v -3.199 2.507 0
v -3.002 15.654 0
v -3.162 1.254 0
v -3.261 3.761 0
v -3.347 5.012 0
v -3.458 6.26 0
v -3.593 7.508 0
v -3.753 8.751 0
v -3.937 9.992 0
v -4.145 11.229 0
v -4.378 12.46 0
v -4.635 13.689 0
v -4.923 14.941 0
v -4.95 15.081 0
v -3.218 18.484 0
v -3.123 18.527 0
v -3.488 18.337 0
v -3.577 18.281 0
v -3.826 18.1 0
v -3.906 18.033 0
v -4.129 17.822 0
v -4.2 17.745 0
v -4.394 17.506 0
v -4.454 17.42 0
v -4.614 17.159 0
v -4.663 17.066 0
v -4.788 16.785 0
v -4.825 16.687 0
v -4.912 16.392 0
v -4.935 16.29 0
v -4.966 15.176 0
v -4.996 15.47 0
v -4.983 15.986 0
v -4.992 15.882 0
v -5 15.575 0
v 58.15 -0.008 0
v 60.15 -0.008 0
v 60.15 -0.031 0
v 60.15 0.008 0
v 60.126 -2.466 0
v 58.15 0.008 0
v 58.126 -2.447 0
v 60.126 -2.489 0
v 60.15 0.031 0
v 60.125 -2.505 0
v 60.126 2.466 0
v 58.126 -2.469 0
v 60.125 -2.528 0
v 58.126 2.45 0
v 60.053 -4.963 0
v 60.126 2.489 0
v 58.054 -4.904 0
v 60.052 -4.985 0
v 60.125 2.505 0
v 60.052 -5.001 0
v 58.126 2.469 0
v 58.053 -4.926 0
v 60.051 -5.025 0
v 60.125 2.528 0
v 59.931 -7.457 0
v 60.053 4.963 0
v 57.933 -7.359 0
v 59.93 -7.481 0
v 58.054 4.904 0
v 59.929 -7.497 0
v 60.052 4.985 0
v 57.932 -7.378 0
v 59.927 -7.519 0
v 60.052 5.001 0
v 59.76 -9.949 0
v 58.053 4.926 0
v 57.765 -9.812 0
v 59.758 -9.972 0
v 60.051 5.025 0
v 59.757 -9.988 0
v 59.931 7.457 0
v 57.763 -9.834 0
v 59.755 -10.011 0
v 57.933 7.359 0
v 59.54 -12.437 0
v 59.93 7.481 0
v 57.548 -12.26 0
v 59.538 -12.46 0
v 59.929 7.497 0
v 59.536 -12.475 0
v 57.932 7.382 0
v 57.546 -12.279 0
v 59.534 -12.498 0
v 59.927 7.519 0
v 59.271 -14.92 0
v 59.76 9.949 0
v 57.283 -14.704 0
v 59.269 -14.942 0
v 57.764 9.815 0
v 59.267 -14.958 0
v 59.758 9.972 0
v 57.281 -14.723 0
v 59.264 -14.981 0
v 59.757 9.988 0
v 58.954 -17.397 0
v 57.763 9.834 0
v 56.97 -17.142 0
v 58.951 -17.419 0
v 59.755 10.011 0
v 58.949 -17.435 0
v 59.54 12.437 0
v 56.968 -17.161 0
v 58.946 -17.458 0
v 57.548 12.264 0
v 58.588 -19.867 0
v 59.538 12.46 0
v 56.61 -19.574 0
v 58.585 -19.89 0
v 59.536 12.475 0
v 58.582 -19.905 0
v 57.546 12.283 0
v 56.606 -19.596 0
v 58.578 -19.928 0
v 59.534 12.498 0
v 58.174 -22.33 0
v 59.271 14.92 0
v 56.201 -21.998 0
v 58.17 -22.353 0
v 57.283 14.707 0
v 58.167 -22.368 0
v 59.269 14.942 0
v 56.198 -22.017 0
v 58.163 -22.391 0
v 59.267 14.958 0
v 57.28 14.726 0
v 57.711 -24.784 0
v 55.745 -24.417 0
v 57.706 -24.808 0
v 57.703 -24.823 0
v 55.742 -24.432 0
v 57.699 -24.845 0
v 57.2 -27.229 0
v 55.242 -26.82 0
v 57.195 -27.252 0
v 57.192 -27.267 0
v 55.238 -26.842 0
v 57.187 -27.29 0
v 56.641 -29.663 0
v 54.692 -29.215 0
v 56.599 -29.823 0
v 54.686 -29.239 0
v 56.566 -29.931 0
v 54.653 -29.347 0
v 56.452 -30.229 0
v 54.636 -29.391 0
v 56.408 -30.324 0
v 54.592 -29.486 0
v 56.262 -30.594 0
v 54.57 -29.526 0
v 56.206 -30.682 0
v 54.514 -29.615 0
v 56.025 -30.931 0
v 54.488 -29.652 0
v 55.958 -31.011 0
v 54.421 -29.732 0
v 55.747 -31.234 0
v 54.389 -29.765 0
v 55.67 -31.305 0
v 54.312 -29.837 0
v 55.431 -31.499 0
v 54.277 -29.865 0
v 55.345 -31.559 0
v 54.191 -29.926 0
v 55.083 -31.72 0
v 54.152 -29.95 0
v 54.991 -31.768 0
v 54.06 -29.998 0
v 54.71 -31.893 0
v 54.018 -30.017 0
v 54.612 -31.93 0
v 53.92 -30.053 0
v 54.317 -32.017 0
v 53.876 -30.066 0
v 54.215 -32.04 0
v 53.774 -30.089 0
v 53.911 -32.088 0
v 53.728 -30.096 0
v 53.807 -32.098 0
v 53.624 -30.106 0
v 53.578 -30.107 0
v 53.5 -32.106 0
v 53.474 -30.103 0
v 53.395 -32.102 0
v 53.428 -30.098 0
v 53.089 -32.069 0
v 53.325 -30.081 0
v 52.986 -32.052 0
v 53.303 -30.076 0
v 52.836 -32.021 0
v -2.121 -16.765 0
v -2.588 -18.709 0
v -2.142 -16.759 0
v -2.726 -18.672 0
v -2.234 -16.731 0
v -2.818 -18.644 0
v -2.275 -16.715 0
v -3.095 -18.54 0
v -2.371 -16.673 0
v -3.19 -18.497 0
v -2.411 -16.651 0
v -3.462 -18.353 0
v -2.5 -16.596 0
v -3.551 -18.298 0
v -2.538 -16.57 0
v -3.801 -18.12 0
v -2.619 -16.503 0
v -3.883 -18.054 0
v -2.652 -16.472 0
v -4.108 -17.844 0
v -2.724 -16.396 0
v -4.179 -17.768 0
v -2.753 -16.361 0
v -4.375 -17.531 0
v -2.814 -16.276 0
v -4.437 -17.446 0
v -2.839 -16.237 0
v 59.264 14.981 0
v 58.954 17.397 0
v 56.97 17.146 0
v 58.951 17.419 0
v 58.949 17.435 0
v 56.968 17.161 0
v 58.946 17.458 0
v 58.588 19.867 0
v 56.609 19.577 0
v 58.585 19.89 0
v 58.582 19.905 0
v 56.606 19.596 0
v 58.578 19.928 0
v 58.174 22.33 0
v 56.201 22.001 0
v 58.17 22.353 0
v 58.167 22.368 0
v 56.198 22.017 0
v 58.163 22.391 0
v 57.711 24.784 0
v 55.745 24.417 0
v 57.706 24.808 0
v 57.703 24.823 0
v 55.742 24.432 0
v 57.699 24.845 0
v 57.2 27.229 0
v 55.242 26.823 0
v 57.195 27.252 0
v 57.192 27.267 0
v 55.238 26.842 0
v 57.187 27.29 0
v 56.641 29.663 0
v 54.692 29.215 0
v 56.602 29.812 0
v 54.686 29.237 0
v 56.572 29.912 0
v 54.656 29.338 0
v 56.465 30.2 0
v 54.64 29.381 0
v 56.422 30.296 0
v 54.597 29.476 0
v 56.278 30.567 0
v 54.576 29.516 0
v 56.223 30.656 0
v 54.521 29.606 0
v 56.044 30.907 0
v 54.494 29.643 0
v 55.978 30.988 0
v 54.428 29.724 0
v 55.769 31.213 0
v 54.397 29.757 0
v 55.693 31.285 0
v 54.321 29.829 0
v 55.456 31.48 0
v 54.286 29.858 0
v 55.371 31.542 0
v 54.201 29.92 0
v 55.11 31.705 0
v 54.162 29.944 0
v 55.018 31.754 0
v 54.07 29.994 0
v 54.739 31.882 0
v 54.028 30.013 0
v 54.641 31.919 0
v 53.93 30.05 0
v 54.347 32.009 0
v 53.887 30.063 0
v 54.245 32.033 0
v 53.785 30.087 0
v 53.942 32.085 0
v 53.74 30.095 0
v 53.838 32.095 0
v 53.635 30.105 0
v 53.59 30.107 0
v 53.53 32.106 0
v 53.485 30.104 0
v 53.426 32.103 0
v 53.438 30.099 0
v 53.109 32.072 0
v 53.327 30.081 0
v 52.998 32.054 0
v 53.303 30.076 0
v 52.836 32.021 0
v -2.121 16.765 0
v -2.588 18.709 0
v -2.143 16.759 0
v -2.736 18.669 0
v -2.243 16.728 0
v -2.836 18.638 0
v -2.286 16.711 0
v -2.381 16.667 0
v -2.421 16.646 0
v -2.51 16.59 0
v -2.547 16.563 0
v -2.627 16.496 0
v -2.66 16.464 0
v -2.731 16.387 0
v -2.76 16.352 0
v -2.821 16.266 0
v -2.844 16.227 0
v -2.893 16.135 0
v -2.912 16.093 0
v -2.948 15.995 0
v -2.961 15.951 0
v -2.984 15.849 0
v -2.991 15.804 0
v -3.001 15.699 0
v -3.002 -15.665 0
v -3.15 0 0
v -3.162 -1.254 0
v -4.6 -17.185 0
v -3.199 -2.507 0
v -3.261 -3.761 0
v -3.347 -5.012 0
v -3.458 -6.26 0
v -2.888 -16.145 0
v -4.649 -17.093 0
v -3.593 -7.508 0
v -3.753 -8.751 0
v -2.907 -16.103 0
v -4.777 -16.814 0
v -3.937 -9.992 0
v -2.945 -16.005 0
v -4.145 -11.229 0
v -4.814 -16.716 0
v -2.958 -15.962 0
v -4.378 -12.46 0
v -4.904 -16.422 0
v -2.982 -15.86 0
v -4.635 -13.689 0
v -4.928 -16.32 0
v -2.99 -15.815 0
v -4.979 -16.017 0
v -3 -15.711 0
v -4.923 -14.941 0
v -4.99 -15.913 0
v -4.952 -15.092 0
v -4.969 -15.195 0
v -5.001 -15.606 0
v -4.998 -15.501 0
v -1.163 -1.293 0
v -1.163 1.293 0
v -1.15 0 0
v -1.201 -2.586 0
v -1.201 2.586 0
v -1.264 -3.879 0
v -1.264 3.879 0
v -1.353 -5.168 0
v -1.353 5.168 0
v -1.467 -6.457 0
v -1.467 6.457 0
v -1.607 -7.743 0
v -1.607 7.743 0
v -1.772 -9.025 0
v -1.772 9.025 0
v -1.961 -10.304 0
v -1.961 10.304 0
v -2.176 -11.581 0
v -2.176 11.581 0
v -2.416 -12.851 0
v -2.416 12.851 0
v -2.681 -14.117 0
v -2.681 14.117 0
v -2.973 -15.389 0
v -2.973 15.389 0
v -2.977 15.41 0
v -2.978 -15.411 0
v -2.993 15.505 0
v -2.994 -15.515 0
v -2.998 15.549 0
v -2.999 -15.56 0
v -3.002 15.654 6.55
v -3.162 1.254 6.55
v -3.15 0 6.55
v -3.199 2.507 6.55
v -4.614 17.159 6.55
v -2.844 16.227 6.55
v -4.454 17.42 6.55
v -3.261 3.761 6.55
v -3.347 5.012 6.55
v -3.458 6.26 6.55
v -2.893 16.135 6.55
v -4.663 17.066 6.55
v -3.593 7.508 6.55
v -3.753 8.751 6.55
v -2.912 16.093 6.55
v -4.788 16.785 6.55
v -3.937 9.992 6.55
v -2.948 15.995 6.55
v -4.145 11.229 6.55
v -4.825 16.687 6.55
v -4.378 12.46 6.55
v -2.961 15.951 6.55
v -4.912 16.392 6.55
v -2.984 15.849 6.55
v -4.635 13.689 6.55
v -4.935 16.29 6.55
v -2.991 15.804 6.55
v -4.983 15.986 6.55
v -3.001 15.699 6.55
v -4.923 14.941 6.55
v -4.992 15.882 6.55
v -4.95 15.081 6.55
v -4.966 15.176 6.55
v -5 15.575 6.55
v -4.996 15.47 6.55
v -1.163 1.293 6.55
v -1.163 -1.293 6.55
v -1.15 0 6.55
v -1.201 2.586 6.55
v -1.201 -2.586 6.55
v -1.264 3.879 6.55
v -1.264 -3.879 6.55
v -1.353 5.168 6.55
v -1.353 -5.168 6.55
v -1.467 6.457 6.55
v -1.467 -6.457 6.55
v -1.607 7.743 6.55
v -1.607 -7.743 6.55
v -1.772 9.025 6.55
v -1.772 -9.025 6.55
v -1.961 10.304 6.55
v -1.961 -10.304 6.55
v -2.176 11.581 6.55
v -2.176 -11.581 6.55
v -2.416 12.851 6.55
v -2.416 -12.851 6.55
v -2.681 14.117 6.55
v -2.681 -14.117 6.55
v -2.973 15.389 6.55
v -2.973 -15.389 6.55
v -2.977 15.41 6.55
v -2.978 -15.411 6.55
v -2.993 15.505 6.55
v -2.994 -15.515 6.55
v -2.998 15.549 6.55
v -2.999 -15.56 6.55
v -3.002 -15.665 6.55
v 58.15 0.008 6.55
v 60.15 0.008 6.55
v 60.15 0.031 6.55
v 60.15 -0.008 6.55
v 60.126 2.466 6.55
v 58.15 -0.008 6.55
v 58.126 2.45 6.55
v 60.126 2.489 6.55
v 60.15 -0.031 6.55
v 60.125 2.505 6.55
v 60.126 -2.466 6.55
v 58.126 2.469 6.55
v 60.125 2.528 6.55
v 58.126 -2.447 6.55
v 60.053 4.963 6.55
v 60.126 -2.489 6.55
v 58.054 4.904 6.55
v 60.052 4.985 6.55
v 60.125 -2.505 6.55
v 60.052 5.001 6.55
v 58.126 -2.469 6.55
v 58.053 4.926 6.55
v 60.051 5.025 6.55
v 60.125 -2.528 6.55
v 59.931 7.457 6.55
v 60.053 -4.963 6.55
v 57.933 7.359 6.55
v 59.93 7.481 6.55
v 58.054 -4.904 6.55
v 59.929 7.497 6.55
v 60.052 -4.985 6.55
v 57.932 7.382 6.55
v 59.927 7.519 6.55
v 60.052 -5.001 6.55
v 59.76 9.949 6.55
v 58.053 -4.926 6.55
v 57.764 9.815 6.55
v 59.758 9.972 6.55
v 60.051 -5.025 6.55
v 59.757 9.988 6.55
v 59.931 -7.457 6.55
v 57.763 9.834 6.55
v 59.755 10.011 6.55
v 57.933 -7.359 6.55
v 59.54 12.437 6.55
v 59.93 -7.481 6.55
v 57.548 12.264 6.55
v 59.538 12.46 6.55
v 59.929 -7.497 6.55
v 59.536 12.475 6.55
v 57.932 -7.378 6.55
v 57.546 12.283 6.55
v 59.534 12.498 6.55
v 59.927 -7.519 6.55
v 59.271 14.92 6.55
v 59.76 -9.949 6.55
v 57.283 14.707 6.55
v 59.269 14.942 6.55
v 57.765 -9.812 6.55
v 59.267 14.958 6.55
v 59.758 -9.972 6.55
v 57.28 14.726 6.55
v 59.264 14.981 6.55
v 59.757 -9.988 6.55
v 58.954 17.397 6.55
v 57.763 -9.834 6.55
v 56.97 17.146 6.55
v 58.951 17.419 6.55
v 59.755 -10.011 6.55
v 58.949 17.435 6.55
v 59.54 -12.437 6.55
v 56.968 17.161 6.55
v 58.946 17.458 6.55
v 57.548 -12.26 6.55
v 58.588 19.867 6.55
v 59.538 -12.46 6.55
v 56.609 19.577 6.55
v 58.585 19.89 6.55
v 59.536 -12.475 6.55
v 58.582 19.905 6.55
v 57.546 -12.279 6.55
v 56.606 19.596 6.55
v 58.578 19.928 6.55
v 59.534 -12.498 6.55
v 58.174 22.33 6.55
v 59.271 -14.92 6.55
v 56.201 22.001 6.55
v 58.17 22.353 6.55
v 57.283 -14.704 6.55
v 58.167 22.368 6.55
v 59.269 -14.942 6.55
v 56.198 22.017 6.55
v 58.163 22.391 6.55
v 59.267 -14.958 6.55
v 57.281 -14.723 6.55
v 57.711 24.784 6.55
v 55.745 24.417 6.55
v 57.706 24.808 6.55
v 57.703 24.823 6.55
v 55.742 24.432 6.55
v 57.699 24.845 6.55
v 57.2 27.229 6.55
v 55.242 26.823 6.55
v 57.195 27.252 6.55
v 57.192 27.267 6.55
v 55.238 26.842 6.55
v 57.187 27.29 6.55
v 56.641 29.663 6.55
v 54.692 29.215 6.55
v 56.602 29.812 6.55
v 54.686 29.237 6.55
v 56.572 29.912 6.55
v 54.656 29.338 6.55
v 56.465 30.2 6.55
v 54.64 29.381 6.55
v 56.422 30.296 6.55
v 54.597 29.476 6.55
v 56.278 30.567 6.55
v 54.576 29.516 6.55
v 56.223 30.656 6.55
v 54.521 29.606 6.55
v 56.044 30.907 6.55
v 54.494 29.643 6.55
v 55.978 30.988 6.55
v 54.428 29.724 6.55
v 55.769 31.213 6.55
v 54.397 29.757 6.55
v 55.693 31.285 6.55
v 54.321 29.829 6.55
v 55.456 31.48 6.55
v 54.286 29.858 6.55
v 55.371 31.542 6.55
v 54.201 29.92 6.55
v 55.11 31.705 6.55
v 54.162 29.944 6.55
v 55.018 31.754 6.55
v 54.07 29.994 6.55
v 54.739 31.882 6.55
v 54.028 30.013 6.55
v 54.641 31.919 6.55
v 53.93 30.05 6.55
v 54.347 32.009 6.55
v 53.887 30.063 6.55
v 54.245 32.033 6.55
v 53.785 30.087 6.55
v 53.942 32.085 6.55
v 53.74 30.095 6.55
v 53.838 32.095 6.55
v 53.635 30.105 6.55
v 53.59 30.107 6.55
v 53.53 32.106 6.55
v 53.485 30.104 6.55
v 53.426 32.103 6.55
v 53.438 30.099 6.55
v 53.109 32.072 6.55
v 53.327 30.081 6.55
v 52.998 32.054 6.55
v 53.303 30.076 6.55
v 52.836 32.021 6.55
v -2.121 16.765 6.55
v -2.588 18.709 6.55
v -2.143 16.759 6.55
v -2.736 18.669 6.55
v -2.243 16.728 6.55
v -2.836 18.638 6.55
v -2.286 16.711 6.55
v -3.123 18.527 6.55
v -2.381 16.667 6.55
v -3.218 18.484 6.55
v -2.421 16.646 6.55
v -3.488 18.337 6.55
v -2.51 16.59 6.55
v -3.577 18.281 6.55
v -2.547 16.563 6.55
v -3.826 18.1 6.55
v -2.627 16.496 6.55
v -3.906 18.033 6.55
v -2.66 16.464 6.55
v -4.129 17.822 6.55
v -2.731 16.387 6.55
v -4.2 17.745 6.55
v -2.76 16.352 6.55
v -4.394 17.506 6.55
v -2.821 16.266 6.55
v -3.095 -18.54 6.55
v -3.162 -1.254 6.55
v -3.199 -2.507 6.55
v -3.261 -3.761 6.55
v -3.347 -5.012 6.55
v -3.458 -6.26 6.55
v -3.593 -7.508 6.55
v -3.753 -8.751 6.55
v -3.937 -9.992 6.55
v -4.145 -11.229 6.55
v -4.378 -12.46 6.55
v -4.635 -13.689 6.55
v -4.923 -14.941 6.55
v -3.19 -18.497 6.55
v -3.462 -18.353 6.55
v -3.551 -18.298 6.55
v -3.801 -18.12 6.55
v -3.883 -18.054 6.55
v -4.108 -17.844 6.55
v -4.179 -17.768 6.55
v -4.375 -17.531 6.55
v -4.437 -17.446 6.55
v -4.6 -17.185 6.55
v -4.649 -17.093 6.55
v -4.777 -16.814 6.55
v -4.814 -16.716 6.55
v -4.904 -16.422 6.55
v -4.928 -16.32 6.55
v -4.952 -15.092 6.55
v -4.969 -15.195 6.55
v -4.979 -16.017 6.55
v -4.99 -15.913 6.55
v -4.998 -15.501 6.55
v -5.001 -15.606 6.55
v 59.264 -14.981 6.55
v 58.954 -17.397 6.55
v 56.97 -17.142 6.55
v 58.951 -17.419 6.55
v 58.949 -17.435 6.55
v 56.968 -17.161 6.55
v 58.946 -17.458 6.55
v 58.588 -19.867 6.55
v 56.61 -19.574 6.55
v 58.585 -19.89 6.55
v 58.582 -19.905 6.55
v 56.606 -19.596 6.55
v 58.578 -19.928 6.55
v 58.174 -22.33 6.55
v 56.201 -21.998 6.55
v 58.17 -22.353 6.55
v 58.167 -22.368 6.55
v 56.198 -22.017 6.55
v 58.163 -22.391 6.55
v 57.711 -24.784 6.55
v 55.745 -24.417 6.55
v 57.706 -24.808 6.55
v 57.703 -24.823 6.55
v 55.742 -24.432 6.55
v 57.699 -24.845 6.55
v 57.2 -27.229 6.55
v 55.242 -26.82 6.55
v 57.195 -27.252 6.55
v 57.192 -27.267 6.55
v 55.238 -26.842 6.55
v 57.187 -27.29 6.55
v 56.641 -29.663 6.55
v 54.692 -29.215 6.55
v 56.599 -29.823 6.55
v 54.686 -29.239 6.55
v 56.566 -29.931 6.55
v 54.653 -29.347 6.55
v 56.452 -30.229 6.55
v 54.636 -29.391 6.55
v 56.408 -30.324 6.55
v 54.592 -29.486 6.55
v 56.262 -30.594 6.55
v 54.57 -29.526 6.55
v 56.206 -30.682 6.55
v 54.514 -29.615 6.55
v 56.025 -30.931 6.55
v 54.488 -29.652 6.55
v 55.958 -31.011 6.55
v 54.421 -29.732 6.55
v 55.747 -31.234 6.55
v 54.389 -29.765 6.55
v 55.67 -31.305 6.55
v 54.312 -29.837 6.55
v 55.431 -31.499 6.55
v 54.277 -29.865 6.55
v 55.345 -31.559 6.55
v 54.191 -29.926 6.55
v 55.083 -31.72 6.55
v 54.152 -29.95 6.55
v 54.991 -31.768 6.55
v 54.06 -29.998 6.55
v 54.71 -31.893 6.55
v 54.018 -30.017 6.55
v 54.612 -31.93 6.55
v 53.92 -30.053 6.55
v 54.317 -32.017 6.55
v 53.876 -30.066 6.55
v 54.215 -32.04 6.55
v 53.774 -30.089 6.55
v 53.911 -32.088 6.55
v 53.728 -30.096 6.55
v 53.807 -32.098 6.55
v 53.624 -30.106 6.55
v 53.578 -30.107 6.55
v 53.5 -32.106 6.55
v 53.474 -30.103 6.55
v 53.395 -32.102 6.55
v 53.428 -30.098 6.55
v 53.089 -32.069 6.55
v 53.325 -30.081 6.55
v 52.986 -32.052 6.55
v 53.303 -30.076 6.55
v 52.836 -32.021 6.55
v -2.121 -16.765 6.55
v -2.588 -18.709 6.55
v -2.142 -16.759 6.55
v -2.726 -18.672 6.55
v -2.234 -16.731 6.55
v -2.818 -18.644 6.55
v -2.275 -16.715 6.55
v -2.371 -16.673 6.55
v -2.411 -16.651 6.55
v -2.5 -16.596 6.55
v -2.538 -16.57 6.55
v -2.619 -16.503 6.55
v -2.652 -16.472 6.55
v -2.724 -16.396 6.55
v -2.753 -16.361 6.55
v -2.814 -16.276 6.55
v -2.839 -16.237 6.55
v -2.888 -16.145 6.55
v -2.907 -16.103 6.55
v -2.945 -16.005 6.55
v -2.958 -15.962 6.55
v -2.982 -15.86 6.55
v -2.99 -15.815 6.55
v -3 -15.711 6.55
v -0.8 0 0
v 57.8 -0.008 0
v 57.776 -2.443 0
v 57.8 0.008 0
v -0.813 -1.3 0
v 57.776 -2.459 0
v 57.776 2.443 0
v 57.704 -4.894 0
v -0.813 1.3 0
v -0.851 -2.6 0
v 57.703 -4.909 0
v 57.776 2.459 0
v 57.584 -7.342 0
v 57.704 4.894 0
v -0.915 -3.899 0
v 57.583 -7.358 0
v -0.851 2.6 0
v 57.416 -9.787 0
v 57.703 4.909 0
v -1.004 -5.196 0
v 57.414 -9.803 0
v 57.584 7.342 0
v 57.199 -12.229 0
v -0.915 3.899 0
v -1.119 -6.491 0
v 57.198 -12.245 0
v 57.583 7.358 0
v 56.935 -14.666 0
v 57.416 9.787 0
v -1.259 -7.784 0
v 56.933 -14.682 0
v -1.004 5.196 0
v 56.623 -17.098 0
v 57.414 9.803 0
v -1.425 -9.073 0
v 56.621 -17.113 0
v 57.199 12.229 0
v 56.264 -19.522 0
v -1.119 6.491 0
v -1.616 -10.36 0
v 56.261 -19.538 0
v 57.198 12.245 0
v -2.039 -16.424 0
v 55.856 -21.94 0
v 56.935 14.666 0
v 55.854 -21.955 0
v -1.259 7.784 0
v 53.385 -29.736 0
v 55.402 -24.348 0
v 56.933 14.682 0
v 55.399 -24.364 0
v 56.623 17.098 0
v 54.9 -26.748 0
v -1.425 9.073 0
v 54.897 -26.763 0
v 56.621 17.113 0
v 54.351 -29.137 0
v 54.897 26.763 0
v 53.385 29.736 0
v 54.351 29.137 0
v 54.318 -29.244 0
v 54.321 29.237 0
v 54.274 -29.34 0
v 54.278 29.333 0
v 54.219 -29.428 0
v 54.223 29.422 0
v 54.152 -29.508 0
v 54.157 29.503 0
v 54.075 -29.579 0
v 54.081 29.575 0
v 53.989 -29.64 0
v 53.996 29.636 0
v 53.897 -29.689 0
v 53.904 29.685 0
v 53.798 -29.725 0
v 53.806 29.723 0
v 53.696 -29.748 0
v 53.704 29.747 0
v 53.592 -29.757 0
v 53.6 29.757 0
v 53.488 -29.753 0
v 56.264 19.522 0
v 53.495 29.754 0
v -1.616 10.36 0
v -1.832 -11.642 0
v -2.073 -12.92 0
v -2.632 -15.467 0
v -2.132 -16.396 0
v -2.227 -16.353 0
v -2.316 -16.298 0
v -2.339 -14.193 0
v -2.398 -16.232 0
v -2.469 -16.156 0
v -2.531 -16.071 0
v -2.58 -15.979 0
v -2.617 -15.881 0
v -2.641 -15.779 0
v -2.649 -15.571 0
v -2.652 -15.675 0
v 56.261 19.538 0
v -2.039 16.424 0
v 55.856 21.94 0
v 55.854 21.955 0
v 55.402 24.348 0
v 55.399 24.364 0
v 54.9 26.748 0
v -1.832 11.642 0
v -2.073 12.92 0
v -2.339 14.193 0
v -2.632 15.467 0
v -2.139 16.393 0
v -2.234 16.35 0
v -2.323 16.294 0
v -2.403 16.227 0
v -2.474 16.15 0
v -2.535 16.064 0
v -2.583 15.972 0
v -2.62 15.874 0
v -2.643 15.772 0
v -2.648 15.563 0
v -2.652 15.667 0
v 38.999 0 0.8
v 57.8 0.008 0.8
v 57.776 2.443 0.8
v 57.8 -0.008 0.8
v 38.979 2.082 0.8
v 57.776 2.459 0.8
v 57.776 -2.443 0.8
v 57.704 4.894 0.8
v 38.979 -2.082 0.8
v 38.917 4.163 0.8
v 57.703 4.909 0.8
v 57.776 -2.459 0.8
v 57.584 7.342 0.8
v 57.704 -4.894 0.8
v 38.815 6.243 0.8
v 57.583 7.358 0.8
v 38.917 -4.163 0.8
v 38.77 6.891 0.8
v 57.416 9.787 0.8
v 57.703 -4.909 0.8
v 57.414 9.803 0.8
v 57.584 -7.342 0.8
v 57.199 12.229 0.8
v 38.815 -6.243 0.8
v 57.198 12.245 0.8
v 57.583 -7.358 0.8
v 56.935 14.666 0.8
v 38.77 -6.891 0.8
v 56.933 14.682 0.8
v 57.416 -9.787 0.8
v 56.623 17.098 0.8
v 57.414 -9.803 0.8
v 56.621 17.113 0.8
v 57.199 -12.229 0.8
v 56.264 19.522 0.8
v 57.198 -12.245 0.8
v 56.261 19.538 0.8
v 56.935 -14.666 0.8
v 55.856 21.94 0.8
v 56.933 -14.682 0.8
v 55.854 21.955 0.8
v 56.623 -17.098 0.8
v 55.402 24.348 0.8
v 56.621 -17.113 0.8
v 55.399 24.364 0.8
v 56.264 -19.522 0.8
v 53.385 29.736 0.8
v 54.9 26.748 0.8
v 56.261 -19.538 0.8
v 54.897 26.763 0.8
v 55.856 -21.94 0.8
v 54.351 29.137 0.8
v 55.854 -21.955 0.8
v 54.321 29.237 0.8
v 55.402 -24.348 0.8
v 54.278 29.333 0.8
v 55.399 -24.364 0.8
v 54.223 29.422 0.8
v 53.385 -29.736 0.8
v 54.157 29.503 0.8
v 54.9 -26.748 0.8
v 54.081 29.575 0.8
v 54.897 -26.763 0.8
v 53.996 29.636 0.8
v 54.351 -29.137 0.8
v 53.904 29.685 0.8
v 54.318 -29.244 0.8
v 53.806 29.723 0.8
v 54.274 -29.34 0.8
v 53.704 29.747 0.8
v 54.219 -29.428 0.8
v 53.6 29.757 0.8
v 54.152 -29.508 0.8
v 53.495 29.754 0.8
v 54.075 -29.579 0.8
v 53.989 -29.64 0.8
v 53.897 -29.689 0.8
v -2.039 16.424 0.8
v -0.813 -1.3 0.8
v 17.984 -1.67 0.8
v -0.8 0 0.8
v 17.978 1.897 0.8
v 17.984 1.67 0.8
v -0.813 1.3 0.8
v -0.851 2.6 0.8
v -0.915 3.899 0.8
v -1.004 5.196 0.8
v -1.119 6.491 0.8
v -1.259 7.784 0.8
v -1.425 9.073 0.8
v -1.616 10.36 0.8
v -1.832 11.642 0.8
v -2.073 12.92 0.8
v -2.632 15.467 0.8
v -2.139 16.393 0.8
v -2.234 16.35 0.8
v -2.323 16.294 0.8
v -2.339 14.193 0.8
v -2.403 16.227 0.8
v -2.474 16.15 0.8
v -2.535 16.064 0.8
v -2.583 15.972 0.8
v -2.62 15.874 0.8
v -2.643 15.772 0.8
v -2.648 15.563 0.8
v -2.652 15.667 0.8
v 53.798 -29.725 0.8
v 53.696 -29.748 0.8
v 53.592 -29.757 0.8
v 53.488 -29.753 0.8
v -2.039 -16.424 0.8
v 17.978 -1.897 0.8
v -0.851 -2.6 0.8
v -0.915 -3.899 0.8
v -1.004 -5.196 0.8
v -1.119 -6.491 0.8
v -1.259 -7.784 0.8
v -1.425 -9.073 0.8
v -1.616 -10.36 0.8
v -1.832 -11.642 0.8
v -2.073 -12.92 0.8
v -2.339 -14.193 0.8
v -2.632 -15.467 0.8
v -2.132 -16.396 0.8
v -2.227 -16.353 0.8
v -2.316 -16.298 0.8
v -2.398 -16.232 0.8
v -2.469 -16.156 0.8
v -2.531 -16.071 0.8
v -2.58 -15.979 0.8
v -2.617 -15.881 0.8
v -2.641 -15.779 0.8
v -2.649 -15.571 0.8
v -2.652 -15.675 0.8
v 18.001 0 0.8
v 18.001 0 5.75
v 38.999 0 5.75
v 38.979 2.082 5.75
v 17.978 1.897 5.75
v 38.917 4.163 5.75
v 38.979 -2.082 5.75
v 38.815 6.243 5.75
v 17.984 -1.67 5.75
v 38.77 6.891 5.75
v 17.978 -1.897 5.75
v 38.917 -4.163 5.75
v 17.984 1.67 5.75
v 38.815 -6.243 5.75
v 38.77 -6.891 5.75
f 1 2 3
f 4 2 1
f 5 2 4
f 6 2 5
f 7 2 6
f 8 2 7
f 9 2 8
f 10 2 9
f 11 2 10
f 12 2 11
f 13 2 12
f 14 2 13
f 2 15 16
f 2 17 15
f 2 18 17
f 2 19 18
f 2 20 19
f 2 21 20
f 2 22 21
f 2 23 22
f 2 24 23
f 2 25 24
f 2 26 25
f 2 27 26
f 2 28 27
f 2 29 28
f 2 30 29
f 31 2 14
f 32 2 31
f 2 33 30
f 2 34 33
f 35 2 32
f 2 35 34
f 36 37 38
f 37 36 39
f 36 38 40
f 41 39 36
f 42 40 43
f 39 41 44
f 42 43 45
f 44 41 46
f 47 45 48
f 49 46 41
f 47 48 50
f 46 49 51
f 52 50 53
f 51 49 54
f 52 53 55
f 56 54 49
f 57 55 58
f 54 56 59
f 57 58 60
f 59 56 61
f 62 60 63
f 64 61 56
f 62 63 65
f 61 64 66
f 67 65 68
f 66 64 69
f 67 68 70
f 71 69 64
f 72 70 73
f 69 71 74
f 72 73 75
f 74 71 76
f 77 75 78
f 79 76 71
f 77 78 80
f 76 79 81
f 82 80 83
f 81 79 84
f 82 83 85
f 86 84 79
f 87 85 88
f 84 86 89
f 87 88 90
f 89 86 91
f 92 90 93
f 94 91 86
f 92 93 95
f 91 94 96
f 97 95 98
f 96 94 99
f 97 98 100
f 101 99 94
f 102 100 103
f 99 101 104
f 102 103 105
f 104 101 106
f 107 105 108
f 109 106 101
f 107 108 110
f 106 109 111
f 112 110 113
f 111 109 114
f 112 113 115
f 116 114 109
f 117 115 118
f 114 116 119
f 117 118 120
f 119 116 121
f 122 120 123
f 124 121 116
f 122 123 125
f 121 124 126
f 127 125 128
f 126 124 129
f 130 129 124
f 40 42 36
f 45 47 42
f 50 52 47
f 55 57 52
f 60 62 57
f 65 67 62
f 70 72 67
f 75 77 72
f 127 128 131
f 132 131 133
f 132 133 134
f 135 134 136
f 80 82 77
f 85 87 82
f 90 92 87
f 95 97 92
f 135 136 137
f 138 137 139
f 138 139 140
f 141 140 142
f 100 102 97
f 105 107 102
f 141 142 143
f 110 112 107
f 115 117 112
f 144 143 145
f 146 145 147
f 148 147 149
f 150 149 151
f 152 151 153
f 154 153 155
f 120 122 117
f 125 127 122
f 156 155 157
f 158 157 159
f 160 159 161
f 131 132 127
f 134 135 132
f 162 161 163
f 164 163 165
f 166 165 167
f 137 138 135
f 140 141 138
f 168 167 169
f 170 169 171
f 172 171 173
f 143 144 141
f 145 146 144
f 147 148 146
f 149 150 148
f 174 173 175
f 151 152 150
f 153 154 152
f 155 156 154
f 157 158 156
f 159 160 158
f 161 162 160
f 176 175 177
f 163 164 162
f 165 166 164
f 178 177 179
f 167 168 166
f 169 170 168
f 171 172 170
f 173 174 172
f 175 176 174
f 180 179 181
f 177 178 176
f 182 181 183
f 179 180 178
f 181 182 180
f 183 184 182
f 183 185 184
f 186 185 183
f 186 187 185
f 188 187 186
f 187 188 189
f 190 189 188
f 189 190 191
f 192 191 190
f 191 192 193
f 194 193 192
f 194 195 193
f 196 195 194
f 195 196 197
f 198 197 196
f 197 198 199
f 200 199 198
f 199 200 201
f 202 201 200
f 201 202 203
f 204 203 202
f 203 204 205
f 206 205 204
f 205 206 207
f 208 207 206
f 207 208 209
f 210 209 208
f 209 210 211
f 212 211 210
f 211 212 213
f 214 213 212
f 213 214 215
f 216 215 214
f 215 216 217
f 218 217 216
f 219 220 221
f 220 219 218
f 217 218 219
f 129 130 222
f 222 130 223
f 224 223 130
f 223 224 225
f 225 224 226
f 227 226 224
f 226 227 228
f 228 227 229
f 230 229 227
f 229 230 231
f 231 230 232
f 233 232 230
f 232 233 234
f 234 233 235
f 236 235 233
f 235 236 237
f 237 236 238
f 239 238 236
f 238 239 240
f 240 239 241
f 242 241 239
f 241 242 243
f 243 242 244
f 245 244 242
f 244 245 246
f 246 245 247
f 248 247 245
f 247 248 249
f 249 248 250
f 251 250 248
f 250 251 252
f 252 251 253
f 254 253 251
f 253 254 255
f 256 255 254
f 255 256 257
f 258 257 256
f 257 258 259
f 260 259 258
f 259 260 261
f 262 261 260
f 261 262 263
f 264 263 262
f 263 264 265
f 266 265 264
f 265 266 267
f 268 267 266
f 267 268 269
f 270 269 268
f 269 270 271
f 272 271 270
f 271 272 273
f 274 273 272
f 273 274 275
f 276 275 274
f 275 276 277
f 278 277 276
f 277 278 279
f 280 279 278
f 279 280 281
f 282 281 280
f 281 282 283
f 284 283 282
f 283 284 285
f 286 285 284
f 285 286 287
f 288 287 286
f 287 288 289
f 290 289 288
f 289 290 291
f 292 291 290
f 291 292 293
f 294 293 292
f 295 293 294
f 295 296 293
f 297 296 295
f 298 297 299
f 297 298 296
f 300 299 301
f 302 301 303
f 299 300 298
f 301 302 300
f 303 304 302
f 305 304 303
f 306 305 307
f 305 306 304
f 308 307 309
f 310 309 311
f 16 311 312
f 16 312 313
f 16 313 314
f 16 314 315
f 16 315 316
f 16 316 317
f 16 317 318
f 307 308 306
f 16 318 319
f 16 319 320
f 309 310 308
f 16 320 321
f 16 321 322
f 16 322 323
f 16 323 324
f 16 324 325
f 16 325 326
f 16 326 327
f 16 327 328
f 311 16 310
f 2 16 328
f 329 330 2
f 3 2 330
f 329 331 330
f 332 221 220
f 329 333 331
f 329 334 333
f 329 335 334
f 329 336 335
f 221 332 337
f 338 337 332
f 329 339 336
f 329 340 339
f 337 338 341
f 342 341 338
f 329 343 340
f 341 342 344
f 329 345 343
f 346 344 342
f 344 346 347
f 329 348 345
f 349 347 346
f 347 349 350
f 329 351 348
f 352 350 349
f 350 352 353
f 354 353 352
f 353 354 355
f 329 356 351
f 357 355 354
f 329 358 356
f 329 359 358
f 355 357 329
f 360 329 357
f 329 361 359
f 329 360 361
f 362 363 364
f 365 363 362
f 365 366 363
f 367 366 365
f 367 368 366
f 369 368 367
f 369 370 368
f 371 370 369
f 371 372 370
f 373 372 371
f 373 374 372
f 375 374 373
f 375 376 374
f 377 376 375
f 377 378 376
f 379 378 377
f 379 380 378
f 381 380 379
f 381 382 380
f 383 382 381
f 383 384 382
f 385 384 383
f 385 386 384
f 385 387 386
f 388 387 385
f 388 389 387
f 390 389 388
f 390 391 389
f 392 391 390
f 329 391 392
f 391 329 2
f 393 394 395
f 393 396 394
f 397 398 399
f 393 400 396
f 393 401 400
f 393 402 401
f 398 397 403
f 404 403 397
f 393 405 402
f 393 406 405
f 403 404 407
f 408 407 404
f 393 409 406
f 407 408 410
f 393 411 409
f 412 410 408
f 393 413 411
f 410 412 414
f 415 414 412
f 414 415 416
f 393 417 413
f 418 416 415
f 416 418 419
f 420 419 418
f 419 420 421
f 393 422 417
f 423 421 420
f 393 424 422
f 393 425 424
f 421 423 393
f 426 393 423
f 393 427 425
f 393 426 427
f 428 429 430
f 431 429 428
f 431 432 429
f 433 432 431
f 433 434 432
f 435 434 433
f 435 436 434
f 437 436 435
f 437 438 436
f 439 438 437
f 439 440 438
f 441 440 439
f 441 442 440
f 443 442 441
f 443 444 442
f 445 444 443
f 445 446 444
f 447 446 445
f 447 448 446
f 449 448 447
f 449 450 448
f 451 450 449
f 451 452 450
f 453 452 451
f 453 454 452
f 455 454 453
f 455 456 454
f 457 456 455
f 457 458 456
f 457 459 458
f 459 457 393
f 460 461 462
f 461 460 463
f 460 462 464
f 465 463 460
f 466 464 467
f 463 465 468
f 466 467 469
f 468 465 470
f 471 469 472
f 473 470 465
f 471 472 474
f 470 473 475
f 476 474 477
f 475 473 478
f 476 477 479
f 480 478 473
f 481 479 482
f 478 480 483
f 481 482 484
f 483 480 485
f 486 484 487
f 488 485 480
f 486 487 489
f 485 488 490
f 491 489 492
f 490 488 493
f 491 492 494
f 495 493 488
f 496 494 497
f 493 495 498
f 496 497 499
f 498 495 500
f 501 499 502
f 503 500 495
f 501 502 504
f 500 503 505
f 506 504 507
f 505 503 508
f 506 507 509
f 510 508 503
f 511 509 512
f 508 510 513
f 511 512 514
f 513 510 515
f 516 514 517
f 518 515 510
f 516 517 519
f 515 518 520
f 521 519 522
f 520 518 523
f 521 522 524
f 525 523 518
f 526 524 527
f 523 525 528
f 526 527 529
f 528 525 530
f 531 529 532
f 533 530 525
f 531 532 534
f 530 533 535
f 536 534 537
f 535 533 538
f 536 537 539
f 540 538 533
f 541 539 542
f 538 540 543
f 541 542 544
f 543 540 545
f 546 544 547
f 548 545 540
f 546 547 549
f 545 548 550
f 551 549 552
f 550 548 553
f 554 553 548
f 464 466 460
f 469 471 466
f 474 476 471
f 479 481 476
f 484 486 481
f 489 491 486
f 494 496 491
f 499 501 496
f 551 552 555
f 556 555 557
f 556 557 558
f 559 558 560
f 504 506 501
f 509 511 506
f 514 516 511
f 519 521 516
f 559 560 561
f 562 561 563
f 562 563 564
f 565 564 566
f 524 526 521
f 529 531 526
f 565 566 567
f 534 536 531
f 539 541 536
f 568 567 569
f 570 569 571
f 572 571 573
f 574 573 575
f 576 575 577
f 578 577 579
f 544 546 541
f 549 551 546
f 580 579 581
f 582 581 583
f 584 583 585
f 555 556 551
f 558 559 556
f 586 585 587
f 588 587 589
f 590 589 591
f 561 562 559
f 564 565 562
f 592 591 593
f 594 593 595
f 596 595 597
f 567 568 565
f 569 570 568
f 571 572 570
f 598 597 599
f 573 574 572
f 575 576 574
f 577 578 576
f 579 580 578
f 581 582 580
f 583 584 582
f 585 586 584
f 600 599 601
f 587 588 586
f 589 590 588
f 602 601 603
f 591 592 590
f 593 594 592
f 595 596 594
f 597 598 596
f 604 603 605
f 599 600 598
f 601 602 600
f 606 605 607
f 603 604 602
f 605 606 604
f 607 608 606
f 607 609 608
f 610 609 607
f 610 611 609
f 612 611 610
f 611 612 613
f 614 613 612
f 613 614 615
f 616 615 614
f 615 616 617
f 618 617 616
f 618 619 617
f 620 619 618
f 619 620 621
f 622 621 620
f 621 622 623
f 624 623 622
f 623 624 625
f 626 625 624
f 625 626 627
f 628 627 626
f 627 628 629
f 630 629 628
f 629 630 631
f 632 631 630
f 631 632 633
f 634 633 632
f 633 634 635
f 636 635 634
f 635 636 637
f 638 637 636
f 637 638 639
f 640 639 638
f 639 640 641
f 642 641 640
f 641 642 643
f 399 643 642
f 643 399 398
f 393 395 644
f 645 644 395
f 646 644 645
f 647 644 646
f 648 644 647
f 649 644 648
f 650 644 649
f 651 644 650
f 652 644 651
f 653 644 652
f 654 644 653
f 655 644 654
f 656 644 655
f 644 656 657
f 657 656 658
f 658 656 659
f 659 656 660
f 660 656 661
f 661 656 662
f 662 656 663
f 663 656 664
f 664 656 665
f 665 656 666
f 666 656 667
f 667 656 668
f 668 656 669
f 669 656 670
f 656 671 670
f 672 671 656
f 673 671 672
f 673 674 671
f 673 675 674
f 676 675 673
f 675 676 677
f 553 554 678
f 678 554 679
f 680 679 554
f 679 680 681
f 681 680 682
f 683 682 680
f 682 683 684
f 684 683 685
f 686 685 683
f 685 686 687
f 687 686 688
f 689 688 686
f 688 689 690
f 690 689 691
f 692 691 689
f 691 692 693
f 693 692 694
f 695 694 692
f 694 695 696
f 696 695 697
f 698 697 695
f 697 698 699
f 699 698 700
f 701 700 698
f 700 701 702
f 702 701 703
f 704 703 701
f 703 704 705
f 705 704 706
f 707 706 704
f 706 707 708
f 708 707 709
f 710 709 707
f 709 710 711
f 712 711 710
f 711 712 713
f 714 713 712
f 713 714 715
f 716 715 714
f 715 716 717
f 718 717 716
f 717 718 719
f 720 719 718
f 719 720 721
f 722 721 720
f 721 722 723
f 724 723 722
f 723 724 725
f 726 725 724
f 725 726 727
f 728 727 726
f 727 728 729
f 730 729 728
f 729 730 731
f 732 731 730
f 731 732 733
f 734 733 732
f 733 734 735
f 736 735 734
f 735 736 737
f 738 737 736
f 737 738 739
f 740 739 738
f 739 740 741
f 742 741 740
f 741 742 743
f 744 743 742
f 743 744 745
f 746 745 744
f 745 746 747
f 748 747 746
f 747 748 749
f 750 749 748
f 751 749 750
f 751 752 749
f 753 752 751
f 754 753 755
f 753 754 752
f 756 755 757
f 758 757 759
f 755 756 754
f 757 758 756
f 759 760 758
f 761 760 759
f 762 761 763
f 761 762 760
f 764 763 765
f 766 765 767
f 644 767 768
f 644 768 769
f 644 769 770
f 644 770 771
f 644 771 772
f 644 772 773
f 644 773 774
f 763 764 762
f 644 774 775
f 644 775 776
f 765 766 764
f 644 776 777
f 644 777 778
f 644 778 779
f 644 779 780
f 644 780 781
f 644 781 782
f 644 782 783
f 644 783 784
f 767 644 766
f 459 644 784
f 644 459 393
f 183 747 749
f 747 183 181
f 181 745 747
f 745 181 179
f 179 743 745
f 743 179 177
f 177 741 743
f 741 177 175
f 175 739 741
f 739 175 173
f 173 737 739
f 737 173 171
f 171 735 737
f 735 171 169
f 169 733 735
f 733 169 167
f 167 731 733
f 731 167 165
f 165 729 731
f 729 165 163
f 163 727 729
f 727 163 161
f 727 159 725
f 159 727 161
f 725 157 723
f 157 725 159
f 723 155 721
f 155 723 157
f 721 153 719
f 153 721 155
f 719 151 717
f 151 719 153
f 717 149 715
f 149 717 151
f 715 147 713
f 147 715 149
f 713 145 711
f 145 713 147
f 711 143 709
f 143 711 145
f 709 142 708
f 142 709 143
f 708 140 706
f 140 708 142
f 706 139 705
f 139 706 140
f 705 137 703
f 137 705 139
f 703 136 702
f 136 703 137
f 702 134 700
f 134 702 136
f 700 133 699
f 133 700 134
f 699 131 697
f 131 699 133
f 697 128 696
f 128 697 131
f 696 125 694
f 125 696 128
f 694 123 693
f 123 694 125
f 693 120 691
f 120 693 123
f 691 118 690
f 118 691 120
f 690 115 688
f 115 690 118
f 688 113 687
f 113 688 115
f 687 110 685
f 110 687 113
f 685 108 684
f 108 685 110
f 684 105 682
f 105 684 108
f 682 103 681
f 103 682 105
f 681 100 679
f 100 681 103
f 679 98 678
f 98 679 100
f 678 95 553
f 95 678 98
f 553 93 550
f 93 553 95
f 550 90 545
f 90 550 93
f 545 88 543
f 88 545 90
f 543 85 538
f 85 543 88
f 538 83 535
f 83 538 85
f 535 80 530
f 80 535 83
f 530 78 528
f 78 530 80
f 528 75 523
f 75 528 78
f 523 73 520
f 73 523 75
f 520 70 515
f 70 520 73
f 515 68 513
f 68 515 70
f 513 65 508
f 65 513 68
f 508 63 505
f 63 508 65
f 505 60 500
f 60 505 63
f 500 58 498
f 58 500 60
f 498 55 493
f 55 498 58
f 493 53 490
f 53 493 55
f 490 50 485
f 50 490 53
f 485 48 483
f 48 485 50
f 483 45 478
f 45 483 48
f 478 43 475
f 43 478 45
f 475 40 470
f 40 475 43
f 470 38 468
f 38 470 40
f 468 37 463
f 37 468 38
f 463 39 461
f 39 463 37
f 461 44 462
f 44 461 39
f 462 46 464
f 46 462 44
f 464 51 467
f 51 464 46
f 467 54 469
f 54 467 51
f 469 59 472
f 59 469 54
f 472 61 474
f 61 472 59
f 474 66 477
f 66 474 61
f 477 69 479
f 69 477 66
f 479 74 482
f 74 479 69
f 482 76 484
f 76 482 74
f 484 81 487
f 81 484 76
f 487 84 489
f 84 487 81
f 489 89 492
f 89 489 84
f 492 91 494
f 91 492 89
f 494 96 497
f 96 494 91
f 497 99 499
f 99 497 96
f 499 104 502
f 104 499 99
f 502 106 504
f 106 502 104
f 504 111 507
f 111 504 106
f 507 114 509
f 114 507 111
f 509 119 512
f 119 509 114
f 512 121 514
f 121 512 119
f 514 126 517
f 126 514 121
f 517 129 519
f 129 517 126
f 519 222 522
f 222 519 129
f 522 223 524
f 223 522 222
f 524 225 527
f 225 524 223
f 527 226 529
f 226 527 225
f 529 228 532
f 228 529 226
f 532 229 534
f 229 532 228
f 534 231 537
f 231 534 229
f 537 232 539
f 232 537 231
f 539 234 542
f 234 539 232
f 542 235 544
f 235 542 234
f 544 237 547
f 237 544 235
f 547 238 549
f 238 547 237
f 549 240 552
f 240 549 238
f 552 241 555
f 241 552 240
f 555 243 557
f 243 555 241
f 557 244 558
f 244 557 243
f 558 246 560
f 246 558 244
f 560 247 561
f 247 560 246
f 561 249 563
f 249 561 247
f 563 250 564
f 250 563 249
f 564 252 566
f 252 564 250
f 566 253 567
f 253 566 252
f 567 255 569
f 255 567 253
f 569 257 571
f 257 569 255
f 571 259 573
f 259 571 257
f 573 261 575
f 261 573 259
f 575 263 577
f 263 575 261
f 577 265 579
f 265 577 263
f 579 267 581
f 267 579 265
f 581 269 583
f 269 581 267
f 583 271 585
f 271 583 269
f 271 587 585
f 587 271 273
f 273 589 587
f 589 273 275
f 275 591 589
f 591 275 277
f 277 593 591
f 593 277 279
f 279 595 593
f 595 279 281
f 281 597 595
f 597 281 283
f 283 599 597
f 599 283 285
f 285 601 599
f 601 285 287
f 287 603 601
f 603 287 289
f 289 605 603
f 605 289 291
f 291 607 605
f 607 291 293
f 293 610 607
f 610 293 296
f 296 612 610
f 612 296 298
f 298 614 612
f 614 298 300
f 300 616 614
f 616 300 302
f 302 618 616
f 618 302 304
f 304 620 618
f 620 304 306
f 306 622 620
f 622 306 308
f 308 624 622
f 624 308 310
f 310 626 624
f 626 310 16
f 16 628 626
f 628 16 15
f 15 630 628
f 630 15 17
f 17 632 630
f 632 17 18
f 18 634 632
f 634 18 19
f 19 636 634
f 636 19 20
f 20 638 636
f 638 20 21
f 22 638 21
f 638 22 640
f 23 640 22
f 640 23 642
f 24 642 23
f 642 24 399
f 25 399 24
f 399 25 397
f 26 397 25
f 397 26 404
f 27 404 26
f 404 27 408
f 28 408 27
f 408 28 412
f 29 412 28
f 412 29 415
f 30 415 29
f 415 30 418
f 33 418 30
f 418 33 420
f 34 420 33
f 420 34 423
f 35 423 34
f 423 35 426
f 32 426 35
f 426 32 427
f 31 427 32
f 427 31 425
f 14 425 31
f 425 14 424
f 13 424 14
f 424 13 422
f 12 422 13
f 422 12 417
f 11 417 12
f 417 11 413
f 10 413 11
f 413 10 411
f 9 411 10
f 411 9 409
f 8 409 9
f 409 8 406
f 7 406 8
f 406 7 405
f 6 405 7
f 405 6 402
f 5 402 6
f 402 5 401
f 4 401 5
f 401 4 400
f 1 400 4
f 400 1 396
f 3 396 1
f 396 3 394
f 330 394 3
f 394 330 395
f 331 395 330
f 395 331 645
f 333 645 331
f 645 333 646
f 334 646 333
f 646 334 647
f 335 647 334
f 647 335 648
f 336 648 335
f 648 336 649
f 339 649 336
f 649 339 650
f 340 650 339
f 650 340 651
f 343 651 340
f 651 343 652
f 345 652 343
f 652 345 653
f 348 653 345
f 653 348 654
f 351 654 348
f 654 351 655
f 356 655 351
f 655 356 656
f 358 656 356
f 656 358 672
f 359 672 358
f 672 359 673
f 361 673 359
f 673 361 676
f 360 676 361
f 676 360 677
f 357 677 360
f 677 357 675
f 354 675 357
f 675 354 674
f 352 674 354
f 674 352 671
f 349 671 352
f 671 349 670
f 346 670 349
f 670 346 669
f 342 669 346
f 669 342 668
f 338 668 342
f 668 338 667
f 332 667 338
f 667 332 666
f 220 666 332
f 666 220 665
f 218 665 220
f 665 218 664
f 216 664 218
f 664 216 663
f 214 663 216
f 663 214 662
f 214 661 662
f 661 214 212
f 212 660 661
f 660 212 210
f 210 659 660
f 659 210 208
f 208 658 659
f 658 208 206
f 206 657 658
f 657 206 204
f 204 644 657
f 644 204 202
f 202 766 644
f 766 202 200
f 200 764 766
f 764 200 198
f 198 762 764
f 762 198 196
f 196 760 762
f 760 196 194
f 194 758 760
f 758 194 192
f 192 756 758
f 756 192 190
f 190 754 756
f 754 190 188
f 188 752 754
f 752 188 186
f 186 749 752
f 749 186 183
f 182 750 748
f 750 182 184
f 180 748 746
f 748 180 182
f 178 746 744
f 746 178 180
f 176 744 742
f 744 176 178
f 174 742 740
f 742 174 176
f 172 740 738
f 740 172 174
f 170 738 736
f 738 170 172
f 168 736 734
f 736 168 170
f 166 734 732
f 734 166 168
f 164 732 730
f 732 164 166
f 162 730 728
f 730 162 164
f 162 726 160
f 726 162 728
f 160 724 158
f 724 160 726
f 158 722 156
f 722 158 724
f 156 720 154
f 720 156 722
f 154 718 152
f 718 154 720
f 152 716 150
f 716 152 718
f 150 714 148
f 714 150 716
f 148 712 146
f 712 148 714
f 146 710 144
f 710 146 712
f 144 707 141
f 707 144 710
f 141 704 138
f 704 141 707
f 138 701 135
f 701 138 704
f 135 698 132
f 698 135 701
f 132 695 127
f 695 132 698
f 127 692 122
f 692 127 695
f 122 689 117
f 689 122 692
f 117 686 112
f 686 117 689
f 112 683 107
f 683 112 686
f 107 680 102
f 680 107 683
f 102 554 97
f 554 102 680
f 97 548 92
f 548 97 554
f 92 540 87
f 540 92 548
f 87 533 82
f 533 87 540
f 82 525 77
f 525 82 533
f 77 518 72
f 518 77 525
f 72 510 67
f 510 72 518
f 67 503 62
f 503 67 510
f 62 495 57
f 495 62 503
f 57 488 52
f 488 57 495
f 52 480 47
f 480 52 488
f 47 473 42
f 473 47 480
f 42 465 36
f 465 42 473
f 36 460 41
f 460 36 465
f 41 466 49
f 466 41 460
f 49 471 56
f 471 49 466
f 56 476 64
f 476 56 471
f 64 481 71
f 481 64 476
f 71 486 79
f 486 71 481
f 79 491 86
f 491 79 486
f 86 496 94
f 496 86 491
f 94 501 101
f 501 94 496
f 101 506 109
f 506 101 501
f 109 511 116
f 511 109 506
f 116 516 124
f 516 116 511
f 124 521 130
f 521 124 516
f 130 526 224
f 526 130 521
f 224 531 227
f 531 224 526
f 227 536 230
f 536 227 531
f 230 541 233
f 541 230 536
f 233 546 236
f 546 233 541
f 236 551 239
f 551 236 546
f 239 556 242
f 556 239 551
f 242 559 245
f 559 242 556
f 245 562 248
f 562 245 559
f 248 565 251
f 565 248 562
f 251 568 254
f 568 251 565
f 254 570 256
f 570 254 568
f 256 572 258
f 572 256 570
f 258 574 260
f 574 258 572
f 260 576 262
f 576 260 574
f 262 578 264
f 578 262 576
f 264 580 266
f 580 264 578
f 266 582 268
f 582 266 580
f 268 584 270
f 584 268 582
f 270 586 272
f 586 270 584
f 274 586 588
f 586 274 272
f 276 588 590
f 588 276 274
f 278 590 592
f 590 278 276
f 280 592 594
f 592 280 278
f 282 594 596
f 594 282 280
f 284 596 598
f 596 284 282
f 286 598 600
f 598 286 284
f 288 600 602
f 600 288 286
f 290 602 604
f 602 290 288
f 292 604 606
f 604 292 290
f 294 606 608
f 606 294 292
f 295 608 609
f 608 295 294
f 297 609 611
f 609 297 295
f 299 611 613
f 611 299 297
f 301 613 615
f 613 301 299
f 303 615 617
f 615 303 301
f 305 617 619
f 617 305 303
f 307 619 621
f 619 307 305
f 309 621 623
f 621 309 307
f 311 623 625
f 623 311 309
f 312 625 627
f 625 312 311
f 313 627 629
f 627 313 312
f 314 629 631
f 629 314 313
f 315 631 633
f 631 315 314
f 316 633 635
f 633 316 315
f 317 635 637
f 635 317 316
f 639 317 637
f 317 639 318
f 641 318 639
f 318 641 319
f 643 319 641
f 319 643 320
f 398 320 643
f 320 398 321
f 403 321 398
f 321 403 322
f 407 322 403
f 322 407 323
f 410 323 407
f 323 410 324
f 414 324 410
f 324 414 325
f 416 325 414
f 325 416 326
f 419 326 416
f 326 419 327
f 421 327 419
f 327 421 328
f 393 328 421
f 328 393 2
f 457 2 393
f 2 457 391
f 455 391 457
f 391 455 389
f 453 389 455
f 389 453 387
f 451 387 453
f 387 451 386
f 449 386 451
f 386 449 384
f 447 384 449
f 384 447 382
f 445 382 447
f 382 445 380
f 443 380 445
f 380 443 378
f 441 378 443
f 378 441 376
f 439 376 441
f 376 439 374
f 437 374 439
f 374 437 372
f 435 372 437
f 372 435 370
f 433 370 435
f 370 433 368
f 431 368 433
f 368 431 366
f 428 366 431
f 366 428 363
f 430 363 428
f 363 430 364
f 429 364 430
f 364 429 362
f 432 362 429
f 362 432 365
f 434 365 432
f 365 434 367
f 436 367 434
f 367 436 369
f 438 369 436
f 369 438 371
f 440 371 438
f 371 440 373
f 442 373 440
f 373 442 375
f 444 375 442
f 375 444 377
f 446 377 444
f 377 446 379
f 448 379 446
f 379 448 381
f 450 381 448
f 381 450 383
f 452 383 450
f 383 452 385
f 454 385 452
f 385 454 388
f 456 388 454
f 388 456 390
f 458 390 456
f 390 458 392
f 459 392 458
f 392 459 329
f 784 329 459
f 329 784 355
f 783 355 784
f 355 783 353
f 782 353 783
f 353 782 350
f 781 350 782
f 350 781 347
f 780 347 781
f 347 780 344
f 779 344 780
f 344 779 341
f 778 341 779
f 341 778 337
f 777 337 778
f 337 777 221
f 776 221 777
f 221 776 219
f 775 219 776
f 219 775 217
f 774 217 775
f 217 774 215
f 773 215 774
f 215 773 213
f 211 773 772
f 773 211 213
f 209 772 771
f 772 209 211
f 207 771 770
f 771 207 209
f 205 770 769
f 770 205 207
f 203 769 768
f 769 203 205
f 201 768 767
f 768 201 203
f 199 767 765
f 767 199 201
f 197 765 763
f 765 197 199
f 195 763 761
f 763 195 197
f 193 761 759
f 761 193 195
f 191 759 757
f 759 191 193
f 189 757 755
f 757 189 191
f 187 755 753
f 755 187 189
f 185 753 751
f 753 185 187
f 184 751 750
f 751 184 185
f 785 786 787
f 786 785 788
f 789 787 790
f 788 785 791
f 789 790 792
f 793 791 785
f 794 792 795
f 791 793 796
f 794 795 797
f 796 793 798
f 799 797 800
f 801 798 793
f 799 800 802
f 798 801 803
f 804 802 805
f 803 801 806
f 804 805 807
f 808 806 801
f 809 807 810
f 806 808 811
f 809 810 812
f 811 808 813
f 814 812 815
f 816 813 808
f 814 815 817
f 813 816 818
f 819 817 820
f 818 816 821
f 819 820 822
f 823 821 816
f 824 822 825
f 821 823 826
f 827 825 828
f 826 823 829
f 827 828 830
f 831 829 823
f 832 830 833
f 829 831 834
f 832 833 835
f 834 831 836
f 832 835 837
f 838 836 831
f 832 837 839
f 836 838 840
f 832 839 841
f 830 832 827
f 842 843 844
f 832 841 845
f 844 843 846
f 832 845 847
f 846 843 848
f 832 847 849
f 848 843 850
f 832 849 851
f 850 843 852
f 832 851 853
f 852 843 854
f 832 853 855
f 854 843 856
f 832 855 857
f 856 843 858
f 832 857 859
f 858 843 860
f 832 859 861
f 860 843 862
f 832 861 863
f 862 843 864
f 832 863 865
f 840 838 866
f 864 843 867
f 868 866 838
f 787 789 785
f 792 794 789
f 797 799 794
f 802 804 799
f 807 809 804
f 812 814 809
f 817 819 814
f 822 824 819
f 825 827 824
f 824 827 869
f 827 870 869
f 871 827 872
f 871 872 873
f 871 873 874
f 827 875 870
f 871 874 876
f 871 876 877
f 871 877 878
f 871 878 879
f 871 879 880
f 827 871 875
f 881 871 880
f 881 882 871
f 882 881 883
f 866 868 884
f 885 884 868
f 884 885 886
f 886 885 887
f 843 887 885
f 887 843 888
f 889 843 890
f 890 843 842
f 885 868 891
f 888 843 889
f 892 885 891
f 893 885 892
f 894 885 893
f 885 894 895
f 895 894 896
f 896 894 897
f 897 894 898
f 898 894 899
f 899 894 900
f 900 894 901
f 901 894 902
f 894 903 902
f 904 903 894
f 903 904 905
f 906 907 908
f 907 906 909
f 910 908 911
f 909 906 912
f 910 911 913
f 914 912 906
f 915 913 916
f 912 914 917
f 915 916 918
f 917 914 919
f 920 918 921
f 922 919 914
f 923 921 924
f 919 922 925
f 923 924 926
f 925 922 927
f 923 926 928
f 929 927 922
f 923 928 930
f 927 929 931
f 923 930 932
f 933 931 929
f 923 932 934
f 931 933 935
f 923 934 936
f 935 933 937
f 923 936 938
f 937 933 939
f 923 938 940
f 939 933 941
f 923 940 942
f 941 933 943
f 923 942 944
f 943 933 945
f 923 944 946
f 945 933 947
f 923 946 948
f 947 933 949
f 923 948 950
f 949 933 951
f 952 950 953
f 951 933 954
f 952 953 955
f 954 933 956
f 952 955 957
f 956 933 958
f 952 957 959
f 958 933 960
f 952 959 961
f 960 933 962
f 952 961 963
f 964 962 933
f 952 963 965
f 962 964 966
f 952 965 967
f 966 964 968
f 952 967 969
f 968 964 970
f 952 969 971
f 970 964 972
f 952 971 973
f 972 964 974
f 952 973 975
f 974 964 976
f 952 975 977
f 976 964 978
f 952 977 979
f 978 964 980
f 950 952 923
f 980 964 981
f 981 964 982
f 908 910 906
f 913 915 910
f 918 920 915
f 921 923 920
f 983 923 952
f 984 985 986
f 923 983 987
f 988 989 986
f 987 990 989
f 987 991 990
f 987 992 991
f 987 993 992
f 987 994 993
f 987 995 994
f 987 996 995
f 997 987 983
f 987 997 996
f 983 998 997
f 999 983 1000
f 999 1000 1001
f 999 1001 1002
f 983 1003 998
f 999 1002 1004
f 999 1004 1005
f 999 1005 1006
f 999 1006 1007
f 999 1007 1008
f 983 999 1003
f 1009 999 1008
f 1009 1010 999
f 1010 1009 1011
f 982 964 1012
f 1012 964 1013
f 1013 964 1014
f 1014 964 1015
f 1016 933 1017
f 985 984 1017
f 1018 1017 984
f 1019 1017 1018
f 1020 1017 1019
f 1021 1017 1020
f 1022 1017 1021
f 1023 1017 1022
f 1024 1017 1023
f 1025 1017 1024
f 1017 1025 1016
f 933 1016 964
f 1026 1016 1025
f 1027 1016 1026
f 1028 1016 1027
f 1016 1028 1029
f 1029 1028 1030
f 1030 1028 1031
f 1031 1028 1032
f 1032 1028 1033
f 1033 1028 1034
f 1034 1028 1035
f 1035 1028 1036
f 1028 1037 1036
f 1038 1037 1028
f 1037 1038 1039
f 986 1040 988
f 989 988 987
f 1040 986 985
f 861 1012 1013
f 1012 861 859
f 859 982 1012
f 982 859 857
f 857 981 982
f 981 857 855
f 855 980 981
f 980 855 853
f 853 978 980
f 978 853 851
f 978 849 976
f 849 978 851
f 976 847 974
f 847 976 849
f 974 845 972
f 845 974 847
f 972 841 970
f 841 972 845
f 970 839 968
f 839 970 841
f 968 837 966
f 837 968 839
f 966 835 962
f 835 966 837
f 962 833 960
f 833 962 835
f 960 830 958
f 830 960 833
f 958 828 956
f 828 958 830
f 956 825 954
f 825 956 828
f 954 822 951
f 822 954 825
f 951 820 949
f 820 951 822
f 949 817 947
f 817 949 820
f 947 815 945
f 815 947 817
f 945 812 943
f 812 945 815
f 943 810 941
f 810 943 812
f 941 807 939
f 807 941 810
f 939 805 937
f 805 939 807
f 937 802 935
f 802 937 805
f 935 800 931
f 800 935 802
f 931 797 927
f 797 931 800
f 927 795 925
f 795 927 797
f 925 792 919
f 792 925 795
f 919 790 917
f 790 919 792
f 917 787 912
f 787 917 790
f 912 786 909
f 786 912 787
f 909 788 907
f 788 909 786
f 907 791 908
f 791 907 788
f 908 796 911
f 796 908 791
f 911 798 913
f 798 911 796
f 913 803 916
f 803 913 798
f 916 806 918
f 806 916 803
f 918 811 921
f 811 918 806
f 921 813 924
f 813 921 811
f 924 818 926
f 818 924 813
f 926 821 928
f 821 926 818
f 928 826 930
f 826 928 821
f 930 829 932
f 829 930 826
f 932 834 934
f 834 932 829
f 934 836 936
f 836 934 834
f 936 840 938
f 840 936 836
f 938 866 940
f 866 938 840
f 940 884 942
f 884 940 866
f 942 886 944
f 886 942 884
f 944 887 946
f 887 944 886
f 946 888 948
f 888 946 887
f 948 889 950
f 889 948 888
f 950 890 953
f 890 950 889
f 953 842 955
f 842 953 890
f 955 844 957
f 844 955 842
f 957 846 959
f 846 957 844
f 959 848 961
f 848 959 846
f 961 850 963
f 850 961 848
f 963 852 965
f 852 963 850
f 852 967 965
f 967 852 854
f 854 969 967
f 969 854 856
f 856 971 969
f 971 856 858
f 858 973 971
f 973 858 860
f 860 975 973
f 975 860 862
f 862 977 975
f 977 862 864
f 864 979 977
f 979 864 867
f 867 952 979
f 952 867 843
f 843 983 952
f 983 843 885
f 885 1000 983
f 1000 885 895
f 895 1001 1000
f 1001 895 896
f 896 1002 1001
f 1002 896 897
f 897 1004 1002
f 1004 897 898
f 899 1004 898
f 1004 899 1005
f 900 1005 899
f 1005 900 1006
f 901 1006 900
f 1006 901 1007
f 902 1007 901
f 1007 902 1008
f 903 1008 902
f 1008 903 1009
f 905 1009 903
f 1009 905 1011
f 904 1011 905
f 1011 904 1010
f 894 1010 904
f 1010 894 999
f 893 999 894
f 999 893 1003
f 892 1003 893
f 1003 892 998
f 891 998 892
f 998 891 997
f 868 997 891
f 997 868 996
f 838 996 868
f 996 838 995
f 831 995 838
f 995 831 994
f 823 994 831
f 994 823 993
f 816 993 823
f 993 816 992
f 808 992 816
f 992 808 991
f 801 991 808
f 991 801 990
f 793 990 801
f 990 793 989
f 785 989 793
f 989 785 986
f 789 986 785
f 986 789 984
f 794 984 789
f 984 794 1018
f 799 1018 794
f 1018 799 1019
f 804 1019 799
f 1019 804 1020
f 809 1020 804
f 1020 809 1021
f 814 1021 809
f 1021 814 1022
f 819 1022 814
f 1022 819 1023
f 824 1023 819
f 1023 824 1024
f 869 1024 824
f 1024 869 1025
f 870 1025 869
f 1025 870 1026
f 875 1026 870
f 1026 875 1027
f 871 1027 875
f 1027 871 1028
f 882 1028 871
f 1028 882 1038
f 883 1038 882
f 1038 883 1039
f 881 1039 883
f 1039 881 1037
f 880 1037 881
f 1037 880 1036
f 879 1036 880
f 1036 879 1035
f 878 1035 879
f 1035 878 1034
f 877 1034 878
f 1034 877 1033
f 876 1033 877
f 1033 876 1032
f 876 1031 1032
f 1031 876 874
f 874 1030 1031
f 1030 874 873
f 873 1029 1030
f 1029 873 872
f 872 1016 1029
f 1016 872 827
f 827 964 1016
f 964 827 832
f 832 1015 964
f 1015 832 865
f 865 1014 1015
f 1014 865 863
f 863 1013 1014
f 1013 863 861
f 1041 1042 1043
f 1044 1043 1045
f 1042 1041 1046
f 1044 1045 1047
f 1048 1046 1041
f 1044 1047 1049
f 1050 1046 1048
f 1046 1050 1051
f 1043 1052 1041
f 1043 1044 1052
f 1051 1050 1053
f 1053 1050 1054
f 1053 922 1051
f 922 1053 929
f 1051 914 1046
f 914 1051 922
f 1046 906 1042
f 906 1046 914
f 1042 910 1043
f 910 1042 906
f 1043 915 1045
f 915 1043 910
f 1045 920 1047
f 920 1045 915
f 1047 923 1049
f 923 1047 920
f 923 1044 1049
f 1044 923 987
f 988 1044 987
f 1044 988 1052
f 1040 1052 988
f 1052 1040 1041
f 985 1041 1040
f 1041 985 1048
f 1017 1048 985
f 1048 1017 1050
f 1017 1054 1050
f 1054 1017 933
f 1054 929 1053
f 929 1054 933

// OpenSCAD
// Gen-DH — fit coupon (bay part): O20/O5 THROUGH pockets at carrier thickness (test on a steel offcut), 608 seat,
// D-flat bore, gap shim, and one bobbin-bay slice (bobbin footprint + bay_clear) to test former fit.
include <parameters.scad>;
$fn = 48;
// D-flat keyed bore: flat faces +X (angle 0 = magnet pocket 0 = index notch)
module dflat_bore(h) {
    intersection() {
        cylinder(d=shaft_bore, h=h);
        translate([-shaft_bore, -shaft_bore, 0]) cube([shaft_bore + dflat_x, 2*shaft_bore, h]);
    }
}
module sector_2d(r_in, r_out, ang) {
    polygon([
        for (a = [-ang/2 : ang/24 : ang/2]) [r_in*cos(a), r_in*sin(a)],
        for (a = [ang/2 : -ang/24 : -ang/2]) [r_out*cos(a), r_out*sin(a)]
    ]);
}
module footprint_2d() { offset(r=wall) sector_2d(coil_id_r, coil_od_r, span_deg); }
module hub_2d()       { offset(delta=-coil_core_inset) sector_2d(coil_id_r, coil_od_r, span_deg); }

// bay slice at FULL stator thickness with one bobbin BASE printed IN PLACE inside it (bay_clear gap): this is the
// print-in-place test for the one-plate stator. After printing, the base must pop out with finger pressure; if it is fused,
// print coil_former.stl separately (print-packs/parts/) instead of using the in-place bases.
translate([-coil_id_r, 0, 0]) {
    difference() {
        linear_extrude(stator_thick) offset(r=bay_clear + 2) footprint_2d();
        translate([0, 0, -0.1]) linear_extrude(stator_thick + 0.2) offset(r=bay_clear) footprint_2d();
    }
    union() {
        linear_extrude(flange_t) footprint_2d();
        translate([0, 0, flange_t - 0.01]) linear_extrude(former_web + 0.01) hub_2d();
    }
}
